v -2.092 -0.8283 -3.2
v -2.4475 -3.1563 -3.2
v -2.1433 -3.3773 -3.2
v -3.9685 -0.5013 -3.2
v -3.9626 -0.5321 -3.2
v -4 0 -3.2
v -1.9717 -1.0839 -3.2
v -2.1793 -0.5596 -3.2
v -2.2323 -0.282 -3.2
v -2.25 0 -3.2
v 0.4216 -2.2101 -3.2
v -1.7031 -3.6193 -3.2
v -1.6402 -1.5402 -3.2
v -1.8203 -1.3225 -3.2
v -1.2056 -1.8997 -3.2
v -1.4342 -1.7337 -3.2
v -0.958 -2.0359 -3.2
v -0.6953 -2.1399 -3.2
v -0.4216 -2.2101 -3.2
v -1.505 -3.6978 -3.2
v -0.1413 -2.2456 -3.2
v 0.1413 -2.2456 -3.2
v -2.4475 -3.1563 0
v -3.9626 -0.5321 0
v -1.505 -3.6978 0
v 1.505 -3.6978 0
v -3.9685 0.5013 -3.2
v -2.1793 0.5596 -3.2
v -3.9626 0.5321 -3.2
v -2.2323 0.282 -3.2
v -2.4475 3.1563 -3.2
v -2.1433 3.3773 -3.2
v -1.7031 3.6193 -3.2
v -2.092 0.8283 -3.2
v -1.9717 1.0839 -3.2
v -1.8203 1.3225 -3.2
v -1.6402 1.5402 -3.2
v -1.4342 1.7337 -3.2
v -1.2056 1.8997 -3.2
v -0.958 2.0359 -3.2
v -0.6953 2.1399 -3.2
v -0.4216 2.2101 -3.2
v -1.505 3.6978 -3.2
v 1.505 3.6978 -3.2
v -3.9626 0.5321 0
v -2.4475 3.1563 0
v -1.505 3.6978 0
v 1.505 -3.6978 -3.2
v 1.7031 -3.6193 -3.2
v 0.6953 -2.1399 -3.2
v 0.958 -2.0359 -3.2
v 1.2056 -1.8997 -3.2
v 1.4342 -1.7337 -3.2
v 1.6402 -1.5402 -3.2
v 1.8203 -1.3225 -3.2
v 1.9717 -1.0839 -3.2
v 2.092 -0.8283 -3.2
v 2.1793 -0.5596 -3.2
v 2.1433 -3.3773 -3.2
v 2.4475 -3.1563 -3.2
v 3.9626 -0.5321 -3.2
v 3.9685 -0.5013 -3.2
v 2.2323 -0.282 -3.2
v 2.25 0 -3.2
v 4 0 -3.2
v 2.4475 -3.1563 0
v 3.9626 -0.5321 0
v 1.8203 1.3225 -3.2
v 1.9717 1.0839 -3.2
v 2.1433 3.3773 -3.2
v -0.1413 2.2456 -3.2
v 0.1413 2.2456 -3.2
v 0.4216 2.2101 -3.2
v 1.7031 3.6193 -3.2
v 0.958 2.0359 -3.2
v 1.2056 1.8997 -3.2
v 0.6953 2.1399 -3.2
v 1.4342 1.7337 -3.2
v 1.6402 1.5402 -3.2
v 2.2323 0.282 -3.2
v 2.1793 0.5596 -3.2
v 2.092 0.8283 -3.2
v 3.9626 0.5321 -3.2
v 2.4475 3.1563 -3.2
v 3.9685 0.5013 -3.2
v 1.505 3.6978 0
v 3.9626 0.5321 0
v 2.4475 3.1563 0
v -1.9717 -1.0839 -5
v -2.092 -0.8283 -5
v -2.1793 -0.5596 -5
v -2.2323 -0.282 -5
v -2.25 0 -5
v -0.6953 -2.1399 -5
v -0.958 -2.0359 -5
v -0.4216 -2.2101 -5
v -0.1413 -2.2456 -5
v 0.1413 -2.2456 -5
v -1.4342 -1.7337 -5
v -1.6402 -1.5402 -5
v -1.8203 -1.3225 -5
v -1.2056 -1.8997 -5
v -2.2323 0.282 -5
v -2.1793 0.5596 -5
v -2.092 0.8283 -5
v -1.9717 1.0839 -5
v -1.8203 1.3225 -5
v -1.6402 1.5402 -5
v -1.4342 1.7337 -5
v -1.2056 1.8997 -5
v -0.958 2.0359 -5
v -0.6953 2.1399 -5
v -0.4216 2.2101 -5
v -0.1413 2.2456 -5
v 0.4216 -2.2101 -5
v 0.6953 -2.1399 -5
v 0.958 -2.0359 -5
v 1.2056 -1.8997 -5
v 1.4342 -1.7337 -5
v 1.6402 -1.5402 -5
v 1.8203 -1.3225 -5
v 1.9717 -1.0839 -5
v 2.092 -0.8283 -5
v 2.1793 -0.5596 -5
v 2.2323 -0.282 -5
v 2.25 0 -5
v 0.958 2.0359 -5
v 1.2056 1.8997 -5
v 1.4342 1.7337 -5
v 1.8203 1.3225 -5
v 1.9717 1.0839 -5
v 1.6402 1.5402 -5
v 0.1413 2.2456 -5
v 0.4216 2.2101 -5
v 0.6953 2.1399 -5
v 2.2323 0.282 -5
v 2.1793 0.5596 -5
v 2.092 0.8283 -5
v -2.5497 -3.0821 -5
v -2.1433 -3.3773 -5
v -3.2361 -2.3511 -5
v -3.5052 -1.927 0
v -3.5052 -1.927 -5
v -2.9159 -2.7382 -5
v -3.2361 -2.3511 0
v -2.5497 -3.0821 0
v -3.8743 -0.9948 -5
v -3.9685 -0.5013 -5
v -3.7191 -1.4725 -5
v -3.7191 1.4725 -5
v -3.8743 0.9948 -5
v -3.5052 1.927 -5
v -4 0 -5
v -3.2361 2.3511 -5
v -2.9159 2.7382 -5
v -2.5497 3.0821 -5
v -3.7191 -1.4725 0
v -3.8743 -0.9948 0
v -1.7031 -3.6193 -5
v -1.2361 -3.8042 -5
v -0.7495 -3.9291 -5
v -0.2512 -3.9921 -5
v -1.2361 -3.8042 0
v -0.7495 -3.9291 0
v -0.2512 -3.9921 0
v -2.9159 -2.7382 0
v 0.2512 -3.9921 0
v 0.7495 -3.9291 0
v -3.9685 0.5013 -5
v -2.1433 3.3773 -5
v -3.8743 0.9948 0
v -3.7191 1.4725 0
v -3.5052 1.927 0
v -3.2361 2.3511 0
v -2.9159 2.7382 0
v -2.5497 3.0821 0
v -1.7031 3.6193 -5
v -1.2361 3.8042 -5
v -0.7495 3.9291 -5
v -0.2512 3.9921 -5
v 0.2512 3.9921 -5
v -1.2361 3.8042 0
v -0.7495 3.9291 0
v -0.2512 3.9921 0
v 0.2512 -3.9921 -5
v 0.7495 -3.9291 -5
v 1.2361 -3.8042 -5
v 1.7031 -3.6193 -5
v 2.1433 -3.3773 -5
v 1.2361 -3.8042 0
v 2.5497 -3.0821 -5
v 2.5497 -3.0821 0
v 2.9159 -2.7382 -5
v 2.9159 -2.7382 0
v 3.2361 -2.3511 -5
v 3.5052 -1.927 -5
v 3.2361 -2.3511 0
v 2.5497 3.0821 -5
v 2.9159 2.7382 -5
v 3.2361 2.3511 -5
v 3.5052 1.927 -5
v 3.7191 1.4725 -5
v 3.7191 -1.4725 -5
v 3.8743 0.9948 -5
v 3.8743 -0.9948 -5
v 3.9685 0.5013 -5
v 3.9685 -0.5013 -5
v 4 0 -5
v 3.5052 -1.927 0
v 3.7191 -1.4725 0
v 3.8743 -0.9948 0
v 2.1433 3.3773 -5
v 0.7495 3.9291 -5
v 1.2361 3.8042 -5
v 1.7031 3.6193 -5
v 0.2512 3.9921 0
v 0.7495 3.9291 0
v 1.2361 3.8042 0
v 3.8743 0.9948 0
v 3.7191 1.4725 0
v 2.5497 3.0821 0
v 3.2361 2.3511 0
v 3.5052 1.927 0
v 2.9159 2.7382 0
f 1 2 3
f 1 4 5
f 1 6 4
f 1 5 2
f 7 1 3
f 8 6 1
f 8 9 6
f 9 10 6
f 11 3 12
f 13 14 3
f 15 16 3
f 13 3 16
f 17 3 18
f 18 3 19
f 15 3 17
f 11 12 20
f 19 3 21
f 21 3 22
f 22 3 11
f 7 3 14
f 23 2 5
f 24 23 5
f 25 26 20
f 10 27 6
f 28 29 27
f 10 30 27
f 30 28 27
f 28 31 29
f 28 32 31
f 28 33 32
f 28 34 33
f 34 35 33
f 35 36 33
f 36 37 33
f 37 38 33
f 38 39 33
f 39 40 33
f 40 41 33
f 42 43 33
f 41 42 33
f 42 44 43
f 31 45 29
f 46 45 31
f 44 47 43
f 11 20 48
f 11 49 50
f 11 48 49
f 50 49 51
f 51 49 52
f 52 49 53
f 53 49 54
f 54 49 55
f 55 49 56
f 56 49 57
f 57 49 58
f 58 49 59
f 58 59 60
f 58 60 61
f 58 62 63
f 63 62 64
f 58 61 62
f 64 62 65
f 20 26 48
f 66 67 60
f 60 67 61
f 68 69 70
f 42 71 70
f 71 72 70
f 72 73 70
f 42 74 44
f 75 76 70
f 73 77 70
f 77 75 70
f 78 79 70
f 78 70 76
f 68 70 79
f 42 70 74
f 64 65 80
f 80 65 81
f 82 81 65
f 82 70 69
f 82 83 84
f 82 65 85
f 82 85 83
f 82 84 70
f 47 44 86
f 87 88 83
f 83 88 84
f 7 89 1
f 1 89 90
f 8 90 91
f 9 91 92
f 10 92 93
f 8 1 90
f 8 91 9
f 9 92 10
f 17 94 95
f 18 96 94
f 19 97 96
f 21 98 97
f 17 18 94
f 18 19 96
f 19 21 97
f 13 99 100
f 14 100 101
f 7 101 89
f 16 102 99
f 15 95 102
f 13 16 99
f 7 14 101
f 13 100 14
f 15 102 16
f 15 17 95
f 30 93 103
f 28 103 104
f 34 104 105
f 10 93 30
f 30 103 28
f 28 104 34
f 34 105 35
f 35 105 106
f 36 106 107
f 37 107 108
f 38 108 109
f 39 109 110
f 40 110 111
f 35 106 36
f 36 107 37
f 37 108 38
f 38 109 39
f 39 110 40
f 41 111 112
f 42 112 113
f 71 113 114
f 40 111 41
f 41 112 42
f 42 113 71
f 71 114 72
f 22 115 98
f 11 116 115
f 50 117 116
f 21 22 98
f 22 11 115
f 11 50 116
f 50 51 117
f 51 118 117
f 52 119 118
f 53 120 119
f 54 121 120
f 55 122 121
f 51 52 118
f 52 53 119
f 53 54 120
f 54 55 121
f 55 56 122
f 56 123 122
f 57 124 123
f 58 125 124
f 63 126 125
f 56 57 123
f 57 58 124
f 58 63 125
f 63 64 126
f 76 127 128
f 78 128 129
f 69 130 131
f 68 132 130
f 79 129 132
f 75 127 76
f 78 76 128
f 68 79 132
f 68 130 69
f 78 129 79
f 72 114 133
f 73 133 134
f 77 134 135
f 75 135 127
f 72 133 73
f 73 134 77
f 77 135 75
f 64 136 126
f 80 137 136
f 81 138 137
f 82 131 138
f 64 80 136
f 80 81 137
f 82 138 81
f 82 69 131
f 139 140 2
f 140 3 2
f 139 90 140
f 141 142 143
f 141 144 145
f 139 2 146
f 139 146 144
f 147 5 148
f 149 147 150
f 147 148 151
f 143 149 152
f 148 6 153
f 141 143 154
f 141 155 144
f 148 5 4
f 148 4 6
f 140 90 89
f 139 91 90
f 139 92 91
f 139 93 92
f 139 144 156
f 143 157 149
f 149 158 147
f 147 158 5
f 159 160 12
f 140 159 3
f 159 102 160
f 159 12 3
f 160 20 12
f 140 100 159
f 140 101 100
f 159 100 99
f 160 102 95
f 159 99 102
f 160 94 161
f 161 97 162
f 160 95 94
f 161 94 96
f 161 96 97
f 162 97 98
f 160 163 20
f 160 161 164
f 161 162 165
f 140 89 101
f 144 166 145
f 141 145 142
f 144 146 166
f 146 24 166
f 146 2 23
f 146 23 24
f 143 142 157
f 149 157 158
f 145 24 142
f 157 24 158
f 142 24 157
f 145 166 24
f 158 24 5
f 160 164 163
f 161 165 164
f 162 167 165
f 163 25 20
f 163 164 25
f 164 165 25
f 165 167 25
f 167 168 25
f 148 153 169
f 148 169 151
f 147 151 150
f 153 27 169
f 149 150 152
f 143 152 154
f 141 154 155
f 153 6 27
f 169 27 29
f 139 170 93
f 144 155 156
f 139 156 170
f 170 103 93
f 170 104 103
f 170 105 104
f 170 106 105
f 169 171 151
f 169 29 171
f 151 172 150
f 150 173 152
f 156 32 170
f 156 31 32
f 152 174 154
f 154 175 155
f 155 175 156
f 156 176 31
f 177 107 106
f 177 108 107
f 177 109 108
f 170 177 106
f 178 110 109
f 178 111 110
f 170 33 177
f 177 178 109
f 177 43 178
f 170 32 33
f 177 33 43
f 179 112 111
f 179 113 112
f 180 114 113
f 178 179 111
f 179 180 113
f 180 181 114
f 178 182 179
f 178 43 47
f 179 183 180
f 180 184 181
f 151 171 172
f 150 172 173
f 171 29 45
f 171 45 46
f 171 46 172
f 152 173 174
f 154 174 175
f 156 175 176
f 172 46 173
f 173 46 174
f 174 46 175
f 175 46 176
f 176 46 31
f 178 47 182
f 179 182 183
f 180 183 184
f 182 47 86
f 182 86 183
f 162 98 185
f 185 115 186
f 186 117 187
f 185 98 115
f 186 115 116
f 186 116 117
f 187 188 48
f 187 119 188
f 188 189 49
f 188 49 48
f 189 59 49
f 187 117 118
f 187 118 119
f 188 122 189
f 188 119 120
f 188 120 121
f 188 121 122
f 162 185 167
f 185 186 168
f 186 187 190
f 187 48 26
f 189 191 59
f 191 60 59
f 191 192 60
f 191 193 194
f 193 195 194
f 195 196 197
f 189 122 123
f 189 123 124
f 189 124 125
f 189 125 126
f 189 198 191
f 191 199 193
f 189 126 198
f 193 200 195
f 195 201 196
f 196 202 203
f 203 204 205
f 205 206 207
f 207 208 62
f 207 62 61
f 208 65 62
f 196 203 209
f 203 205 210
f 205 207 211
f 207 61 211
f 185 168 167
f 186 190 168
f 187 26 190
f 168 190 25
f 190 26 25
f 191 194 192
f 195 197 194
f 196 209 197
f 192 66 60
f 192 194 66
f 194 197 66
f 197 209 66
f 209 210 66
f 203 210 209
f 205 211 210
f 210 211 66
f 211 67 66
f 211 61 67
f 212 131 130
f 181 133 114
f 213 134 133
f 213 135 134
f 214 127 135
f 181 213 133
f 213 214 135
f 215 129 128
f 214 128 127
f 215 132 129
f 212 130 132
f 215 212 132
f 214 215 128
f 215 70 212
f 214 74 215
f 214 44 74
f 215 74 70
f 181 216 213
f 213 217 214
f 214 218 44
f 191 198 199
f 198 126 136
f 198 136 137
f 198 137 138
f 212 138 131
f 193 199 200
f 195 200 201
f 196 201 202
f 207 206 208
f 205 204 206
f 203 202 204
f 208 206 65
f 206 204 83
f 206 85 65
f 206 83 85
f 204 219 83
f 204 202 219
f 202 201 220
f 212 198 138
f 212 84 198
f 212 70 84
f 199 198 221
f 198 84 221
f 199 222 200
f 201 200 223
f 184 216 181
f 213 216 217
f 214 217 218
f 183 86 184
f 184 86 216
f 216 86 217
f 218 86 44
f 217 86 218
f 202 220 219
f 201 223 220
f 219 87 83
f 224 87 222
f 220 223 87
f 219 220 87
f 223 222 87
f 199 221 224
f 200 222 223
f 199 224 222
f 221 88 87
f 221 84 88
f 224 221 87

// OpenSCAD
$fn = 50;

difference() {
	union() {
		translate(v = [0, 0, -5.0]) {
			cylinder(h = 5.0, r = 4.0);
		}
	}
	union() {
		translate(v = [0, 0, 0]) {
			rotate(a = [0, 0, 0]) {
				difference() {
					union() {
						translate(v = [0, 0, -3.2]) {
							linear_extrude(height = 3.2) {
								polygon(points = [[4.2698, 0.0], [2.1349000000000005, 3.697755269078796], [-2.134899999999999, 3.6977552690787965], [-4.2698, 5.228996902999369e-16], [-2.134900000000002, -3.6977552690787956], [2.1348999999999974, -3.697755269078798]]);
							}
						}
					}
					union();
				}
			}
		}
		#translate(v = [0, 0, -100.0]) {
			cylinder(h = 200, r = 2.25);
		}
	}
}
